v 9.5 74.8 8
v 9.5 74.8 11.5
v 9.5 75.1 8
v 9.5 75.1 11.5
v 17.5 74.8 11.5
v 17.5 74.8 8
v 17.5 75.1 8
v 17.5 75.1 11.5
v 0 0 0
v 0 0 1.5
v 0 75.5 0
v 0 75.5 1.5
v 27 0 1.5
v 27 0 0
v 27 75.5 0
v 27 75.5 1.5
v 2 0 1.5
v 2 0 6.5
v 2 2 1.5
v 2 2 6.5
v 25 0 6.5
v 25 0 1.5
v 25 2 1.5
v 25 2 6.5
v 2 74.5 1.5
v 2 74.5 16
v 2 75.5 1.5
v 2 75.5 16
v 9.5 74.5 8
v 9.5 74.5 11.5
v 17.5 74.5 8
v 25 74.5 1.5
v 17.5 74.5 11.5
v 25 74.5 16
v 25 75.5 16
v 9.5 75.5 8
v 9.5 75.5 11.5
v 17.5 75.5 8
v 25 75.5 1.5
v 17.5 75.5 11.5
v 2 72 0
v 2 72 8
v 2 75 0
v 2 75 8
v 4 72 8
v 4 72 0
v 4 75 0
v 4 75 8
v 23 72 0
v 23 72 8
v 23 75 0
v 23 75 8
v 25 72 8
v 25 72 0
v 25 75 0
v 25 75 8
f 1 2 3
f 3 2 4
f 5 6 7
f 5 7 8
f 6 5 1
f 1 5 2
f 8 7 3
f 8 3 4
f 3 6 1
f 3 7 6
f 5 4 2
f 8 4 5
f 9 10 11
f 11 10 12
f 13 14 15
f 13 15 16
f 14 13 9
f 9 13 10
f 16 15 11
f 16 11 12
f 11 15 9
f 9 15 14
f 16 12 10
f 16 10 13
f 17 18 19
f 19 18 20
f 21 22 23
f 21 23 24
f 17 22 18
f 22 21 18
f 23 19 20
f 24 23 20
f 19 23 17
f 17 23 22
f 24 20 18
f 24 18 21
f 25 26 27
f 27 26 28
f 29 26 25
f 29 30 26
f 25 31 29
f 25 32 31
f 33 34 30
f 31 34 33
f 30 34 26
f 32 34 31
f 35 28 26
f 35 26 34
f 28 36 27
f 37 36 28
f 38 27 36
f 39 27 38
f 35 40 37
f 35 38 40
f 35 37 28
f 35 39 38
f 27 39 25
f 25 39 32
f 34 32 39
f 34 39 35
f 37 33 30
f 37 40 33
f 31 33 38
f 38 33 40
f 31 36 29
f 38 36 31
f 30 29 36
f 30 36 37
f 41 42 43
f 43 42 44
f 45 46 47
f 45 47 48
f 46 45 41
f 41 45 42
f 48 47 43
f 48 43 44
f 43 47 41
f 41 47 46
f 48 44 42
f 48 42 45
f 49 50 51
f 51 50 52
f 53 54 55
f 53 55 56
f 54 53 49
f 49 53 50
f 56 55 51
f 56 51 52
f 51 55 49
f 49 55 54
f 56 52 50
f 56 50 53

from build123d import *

# Parameters (mm, degrees)
BOX_W        = 27
BOX_H        = 75.5
BOX_DEPTH    = 1.5
BOX001_W     = 23
BOX001_H     = 2
BOX001_DEPTH = 5
BOX003_W     = 8
BOX003_H     = 1
BOX003_DEPTH = 3.5
BOX002_W     = 23
BOX002_H     = 1
BOX002_DEPTH = 14.5
BOX004_W     = 8
BOX004_H     = 0.3
BOX004_DEPTH = 3.5
BOX005_W     = 2
BOX005_H     = 3
BOX005_DEPTH = 8
BOX006_W     = 2
BOX006_H     = 3
BOX006_DEPTH = 8


with BuildPart() as kocka:
    # Box → Box (new body)
    with BuildSketch(Plane.XY):
        with Locations((13.5, 37.75)):
            Rectangle(BOX_W, BOX_H)
    extrude(amount=BOX_DEPTH)


with BuildPart() as kocka001:
    # Box001 → Box001 (new body)
    with BuildSketch(Plane(origin=(2, 0, 1.5), x_dir=(1, 0, 0), z_dir=(0, 0, 1))):
        with Locations((11.5, 1)):
            Rectangle(BOX001_W, BOX001_H)
    extrude(amount=BOX001_DEPTH)


with BuildPart() as kocka003:
    # Box003 → Box003 (new body)
    with BuildSketch(Plane(origin=(9.5, 74.5, 8), x_dir=(1, 0, 0), z_dir=(0, 0, 1))):
        with Locations((4, 0.5)):
            Rectangle(BOX003_W, BOX003_H)
    extrude(amount=BOX003_DEPTH)


with BuildPart() as cut:
    # Box002 → Box002 (new body)
    with BuildSketch(Plane(origin=(2, 74.5, 1.5), x_dir=(1, 0, 0), z_dir=(0, 0, 1))):
        with Locations((11.5, 0.5)):
            Rectangle(BOX002_W, BOX002_H)
    extrude(amount=BOX002_DEPTH)

    # Cut: cut Kocka003
    add(kocka003.part, mode=Mode.SUBTRACT)


with BuildPart() as kocka004:
    # Box004 → Box004 (new body)
    with BuildSketch(Plane(origin=(9.5, 74.8, 8), x_dir=(1, 0, 0), z_dir=(0, 0, 1))):
        with Locations((4, 0.15)):
            Rectangle(BOX004_W, BOX004_H)
    extrude(amount=BOX004_DEPTH)


with BuildPart() as kocka005:
    # Box005 → Box005 (new body)
    with BuildSketch(Plane(origin=(2, 72, 0), x_dir=(1, 0, 0), z_dir=(0, 0, 1))):
        with Locations((1, 1.5)):
            Rectangle(BOX005_W, BOX005_H)
    extrude(amount=BOX005_DEPTH)


with BuildPart() as kocka006:
    # Box006 → Box006 (new body)
    with BuildSketch(Plane(origin=(23, 72, 0), x_dir=(1, 0, 0), z_dir=(0, 0, 1))):
        with Locations((1, 1.5)):
            Rectangle(BOX006_W, BOX006_H)
    extrude(amount=BOX006_DEPTH)


solid = Compound([kocka.part, kocka001.part, cut.part, kocka004.part, kocka005.part, kocka006.part])
